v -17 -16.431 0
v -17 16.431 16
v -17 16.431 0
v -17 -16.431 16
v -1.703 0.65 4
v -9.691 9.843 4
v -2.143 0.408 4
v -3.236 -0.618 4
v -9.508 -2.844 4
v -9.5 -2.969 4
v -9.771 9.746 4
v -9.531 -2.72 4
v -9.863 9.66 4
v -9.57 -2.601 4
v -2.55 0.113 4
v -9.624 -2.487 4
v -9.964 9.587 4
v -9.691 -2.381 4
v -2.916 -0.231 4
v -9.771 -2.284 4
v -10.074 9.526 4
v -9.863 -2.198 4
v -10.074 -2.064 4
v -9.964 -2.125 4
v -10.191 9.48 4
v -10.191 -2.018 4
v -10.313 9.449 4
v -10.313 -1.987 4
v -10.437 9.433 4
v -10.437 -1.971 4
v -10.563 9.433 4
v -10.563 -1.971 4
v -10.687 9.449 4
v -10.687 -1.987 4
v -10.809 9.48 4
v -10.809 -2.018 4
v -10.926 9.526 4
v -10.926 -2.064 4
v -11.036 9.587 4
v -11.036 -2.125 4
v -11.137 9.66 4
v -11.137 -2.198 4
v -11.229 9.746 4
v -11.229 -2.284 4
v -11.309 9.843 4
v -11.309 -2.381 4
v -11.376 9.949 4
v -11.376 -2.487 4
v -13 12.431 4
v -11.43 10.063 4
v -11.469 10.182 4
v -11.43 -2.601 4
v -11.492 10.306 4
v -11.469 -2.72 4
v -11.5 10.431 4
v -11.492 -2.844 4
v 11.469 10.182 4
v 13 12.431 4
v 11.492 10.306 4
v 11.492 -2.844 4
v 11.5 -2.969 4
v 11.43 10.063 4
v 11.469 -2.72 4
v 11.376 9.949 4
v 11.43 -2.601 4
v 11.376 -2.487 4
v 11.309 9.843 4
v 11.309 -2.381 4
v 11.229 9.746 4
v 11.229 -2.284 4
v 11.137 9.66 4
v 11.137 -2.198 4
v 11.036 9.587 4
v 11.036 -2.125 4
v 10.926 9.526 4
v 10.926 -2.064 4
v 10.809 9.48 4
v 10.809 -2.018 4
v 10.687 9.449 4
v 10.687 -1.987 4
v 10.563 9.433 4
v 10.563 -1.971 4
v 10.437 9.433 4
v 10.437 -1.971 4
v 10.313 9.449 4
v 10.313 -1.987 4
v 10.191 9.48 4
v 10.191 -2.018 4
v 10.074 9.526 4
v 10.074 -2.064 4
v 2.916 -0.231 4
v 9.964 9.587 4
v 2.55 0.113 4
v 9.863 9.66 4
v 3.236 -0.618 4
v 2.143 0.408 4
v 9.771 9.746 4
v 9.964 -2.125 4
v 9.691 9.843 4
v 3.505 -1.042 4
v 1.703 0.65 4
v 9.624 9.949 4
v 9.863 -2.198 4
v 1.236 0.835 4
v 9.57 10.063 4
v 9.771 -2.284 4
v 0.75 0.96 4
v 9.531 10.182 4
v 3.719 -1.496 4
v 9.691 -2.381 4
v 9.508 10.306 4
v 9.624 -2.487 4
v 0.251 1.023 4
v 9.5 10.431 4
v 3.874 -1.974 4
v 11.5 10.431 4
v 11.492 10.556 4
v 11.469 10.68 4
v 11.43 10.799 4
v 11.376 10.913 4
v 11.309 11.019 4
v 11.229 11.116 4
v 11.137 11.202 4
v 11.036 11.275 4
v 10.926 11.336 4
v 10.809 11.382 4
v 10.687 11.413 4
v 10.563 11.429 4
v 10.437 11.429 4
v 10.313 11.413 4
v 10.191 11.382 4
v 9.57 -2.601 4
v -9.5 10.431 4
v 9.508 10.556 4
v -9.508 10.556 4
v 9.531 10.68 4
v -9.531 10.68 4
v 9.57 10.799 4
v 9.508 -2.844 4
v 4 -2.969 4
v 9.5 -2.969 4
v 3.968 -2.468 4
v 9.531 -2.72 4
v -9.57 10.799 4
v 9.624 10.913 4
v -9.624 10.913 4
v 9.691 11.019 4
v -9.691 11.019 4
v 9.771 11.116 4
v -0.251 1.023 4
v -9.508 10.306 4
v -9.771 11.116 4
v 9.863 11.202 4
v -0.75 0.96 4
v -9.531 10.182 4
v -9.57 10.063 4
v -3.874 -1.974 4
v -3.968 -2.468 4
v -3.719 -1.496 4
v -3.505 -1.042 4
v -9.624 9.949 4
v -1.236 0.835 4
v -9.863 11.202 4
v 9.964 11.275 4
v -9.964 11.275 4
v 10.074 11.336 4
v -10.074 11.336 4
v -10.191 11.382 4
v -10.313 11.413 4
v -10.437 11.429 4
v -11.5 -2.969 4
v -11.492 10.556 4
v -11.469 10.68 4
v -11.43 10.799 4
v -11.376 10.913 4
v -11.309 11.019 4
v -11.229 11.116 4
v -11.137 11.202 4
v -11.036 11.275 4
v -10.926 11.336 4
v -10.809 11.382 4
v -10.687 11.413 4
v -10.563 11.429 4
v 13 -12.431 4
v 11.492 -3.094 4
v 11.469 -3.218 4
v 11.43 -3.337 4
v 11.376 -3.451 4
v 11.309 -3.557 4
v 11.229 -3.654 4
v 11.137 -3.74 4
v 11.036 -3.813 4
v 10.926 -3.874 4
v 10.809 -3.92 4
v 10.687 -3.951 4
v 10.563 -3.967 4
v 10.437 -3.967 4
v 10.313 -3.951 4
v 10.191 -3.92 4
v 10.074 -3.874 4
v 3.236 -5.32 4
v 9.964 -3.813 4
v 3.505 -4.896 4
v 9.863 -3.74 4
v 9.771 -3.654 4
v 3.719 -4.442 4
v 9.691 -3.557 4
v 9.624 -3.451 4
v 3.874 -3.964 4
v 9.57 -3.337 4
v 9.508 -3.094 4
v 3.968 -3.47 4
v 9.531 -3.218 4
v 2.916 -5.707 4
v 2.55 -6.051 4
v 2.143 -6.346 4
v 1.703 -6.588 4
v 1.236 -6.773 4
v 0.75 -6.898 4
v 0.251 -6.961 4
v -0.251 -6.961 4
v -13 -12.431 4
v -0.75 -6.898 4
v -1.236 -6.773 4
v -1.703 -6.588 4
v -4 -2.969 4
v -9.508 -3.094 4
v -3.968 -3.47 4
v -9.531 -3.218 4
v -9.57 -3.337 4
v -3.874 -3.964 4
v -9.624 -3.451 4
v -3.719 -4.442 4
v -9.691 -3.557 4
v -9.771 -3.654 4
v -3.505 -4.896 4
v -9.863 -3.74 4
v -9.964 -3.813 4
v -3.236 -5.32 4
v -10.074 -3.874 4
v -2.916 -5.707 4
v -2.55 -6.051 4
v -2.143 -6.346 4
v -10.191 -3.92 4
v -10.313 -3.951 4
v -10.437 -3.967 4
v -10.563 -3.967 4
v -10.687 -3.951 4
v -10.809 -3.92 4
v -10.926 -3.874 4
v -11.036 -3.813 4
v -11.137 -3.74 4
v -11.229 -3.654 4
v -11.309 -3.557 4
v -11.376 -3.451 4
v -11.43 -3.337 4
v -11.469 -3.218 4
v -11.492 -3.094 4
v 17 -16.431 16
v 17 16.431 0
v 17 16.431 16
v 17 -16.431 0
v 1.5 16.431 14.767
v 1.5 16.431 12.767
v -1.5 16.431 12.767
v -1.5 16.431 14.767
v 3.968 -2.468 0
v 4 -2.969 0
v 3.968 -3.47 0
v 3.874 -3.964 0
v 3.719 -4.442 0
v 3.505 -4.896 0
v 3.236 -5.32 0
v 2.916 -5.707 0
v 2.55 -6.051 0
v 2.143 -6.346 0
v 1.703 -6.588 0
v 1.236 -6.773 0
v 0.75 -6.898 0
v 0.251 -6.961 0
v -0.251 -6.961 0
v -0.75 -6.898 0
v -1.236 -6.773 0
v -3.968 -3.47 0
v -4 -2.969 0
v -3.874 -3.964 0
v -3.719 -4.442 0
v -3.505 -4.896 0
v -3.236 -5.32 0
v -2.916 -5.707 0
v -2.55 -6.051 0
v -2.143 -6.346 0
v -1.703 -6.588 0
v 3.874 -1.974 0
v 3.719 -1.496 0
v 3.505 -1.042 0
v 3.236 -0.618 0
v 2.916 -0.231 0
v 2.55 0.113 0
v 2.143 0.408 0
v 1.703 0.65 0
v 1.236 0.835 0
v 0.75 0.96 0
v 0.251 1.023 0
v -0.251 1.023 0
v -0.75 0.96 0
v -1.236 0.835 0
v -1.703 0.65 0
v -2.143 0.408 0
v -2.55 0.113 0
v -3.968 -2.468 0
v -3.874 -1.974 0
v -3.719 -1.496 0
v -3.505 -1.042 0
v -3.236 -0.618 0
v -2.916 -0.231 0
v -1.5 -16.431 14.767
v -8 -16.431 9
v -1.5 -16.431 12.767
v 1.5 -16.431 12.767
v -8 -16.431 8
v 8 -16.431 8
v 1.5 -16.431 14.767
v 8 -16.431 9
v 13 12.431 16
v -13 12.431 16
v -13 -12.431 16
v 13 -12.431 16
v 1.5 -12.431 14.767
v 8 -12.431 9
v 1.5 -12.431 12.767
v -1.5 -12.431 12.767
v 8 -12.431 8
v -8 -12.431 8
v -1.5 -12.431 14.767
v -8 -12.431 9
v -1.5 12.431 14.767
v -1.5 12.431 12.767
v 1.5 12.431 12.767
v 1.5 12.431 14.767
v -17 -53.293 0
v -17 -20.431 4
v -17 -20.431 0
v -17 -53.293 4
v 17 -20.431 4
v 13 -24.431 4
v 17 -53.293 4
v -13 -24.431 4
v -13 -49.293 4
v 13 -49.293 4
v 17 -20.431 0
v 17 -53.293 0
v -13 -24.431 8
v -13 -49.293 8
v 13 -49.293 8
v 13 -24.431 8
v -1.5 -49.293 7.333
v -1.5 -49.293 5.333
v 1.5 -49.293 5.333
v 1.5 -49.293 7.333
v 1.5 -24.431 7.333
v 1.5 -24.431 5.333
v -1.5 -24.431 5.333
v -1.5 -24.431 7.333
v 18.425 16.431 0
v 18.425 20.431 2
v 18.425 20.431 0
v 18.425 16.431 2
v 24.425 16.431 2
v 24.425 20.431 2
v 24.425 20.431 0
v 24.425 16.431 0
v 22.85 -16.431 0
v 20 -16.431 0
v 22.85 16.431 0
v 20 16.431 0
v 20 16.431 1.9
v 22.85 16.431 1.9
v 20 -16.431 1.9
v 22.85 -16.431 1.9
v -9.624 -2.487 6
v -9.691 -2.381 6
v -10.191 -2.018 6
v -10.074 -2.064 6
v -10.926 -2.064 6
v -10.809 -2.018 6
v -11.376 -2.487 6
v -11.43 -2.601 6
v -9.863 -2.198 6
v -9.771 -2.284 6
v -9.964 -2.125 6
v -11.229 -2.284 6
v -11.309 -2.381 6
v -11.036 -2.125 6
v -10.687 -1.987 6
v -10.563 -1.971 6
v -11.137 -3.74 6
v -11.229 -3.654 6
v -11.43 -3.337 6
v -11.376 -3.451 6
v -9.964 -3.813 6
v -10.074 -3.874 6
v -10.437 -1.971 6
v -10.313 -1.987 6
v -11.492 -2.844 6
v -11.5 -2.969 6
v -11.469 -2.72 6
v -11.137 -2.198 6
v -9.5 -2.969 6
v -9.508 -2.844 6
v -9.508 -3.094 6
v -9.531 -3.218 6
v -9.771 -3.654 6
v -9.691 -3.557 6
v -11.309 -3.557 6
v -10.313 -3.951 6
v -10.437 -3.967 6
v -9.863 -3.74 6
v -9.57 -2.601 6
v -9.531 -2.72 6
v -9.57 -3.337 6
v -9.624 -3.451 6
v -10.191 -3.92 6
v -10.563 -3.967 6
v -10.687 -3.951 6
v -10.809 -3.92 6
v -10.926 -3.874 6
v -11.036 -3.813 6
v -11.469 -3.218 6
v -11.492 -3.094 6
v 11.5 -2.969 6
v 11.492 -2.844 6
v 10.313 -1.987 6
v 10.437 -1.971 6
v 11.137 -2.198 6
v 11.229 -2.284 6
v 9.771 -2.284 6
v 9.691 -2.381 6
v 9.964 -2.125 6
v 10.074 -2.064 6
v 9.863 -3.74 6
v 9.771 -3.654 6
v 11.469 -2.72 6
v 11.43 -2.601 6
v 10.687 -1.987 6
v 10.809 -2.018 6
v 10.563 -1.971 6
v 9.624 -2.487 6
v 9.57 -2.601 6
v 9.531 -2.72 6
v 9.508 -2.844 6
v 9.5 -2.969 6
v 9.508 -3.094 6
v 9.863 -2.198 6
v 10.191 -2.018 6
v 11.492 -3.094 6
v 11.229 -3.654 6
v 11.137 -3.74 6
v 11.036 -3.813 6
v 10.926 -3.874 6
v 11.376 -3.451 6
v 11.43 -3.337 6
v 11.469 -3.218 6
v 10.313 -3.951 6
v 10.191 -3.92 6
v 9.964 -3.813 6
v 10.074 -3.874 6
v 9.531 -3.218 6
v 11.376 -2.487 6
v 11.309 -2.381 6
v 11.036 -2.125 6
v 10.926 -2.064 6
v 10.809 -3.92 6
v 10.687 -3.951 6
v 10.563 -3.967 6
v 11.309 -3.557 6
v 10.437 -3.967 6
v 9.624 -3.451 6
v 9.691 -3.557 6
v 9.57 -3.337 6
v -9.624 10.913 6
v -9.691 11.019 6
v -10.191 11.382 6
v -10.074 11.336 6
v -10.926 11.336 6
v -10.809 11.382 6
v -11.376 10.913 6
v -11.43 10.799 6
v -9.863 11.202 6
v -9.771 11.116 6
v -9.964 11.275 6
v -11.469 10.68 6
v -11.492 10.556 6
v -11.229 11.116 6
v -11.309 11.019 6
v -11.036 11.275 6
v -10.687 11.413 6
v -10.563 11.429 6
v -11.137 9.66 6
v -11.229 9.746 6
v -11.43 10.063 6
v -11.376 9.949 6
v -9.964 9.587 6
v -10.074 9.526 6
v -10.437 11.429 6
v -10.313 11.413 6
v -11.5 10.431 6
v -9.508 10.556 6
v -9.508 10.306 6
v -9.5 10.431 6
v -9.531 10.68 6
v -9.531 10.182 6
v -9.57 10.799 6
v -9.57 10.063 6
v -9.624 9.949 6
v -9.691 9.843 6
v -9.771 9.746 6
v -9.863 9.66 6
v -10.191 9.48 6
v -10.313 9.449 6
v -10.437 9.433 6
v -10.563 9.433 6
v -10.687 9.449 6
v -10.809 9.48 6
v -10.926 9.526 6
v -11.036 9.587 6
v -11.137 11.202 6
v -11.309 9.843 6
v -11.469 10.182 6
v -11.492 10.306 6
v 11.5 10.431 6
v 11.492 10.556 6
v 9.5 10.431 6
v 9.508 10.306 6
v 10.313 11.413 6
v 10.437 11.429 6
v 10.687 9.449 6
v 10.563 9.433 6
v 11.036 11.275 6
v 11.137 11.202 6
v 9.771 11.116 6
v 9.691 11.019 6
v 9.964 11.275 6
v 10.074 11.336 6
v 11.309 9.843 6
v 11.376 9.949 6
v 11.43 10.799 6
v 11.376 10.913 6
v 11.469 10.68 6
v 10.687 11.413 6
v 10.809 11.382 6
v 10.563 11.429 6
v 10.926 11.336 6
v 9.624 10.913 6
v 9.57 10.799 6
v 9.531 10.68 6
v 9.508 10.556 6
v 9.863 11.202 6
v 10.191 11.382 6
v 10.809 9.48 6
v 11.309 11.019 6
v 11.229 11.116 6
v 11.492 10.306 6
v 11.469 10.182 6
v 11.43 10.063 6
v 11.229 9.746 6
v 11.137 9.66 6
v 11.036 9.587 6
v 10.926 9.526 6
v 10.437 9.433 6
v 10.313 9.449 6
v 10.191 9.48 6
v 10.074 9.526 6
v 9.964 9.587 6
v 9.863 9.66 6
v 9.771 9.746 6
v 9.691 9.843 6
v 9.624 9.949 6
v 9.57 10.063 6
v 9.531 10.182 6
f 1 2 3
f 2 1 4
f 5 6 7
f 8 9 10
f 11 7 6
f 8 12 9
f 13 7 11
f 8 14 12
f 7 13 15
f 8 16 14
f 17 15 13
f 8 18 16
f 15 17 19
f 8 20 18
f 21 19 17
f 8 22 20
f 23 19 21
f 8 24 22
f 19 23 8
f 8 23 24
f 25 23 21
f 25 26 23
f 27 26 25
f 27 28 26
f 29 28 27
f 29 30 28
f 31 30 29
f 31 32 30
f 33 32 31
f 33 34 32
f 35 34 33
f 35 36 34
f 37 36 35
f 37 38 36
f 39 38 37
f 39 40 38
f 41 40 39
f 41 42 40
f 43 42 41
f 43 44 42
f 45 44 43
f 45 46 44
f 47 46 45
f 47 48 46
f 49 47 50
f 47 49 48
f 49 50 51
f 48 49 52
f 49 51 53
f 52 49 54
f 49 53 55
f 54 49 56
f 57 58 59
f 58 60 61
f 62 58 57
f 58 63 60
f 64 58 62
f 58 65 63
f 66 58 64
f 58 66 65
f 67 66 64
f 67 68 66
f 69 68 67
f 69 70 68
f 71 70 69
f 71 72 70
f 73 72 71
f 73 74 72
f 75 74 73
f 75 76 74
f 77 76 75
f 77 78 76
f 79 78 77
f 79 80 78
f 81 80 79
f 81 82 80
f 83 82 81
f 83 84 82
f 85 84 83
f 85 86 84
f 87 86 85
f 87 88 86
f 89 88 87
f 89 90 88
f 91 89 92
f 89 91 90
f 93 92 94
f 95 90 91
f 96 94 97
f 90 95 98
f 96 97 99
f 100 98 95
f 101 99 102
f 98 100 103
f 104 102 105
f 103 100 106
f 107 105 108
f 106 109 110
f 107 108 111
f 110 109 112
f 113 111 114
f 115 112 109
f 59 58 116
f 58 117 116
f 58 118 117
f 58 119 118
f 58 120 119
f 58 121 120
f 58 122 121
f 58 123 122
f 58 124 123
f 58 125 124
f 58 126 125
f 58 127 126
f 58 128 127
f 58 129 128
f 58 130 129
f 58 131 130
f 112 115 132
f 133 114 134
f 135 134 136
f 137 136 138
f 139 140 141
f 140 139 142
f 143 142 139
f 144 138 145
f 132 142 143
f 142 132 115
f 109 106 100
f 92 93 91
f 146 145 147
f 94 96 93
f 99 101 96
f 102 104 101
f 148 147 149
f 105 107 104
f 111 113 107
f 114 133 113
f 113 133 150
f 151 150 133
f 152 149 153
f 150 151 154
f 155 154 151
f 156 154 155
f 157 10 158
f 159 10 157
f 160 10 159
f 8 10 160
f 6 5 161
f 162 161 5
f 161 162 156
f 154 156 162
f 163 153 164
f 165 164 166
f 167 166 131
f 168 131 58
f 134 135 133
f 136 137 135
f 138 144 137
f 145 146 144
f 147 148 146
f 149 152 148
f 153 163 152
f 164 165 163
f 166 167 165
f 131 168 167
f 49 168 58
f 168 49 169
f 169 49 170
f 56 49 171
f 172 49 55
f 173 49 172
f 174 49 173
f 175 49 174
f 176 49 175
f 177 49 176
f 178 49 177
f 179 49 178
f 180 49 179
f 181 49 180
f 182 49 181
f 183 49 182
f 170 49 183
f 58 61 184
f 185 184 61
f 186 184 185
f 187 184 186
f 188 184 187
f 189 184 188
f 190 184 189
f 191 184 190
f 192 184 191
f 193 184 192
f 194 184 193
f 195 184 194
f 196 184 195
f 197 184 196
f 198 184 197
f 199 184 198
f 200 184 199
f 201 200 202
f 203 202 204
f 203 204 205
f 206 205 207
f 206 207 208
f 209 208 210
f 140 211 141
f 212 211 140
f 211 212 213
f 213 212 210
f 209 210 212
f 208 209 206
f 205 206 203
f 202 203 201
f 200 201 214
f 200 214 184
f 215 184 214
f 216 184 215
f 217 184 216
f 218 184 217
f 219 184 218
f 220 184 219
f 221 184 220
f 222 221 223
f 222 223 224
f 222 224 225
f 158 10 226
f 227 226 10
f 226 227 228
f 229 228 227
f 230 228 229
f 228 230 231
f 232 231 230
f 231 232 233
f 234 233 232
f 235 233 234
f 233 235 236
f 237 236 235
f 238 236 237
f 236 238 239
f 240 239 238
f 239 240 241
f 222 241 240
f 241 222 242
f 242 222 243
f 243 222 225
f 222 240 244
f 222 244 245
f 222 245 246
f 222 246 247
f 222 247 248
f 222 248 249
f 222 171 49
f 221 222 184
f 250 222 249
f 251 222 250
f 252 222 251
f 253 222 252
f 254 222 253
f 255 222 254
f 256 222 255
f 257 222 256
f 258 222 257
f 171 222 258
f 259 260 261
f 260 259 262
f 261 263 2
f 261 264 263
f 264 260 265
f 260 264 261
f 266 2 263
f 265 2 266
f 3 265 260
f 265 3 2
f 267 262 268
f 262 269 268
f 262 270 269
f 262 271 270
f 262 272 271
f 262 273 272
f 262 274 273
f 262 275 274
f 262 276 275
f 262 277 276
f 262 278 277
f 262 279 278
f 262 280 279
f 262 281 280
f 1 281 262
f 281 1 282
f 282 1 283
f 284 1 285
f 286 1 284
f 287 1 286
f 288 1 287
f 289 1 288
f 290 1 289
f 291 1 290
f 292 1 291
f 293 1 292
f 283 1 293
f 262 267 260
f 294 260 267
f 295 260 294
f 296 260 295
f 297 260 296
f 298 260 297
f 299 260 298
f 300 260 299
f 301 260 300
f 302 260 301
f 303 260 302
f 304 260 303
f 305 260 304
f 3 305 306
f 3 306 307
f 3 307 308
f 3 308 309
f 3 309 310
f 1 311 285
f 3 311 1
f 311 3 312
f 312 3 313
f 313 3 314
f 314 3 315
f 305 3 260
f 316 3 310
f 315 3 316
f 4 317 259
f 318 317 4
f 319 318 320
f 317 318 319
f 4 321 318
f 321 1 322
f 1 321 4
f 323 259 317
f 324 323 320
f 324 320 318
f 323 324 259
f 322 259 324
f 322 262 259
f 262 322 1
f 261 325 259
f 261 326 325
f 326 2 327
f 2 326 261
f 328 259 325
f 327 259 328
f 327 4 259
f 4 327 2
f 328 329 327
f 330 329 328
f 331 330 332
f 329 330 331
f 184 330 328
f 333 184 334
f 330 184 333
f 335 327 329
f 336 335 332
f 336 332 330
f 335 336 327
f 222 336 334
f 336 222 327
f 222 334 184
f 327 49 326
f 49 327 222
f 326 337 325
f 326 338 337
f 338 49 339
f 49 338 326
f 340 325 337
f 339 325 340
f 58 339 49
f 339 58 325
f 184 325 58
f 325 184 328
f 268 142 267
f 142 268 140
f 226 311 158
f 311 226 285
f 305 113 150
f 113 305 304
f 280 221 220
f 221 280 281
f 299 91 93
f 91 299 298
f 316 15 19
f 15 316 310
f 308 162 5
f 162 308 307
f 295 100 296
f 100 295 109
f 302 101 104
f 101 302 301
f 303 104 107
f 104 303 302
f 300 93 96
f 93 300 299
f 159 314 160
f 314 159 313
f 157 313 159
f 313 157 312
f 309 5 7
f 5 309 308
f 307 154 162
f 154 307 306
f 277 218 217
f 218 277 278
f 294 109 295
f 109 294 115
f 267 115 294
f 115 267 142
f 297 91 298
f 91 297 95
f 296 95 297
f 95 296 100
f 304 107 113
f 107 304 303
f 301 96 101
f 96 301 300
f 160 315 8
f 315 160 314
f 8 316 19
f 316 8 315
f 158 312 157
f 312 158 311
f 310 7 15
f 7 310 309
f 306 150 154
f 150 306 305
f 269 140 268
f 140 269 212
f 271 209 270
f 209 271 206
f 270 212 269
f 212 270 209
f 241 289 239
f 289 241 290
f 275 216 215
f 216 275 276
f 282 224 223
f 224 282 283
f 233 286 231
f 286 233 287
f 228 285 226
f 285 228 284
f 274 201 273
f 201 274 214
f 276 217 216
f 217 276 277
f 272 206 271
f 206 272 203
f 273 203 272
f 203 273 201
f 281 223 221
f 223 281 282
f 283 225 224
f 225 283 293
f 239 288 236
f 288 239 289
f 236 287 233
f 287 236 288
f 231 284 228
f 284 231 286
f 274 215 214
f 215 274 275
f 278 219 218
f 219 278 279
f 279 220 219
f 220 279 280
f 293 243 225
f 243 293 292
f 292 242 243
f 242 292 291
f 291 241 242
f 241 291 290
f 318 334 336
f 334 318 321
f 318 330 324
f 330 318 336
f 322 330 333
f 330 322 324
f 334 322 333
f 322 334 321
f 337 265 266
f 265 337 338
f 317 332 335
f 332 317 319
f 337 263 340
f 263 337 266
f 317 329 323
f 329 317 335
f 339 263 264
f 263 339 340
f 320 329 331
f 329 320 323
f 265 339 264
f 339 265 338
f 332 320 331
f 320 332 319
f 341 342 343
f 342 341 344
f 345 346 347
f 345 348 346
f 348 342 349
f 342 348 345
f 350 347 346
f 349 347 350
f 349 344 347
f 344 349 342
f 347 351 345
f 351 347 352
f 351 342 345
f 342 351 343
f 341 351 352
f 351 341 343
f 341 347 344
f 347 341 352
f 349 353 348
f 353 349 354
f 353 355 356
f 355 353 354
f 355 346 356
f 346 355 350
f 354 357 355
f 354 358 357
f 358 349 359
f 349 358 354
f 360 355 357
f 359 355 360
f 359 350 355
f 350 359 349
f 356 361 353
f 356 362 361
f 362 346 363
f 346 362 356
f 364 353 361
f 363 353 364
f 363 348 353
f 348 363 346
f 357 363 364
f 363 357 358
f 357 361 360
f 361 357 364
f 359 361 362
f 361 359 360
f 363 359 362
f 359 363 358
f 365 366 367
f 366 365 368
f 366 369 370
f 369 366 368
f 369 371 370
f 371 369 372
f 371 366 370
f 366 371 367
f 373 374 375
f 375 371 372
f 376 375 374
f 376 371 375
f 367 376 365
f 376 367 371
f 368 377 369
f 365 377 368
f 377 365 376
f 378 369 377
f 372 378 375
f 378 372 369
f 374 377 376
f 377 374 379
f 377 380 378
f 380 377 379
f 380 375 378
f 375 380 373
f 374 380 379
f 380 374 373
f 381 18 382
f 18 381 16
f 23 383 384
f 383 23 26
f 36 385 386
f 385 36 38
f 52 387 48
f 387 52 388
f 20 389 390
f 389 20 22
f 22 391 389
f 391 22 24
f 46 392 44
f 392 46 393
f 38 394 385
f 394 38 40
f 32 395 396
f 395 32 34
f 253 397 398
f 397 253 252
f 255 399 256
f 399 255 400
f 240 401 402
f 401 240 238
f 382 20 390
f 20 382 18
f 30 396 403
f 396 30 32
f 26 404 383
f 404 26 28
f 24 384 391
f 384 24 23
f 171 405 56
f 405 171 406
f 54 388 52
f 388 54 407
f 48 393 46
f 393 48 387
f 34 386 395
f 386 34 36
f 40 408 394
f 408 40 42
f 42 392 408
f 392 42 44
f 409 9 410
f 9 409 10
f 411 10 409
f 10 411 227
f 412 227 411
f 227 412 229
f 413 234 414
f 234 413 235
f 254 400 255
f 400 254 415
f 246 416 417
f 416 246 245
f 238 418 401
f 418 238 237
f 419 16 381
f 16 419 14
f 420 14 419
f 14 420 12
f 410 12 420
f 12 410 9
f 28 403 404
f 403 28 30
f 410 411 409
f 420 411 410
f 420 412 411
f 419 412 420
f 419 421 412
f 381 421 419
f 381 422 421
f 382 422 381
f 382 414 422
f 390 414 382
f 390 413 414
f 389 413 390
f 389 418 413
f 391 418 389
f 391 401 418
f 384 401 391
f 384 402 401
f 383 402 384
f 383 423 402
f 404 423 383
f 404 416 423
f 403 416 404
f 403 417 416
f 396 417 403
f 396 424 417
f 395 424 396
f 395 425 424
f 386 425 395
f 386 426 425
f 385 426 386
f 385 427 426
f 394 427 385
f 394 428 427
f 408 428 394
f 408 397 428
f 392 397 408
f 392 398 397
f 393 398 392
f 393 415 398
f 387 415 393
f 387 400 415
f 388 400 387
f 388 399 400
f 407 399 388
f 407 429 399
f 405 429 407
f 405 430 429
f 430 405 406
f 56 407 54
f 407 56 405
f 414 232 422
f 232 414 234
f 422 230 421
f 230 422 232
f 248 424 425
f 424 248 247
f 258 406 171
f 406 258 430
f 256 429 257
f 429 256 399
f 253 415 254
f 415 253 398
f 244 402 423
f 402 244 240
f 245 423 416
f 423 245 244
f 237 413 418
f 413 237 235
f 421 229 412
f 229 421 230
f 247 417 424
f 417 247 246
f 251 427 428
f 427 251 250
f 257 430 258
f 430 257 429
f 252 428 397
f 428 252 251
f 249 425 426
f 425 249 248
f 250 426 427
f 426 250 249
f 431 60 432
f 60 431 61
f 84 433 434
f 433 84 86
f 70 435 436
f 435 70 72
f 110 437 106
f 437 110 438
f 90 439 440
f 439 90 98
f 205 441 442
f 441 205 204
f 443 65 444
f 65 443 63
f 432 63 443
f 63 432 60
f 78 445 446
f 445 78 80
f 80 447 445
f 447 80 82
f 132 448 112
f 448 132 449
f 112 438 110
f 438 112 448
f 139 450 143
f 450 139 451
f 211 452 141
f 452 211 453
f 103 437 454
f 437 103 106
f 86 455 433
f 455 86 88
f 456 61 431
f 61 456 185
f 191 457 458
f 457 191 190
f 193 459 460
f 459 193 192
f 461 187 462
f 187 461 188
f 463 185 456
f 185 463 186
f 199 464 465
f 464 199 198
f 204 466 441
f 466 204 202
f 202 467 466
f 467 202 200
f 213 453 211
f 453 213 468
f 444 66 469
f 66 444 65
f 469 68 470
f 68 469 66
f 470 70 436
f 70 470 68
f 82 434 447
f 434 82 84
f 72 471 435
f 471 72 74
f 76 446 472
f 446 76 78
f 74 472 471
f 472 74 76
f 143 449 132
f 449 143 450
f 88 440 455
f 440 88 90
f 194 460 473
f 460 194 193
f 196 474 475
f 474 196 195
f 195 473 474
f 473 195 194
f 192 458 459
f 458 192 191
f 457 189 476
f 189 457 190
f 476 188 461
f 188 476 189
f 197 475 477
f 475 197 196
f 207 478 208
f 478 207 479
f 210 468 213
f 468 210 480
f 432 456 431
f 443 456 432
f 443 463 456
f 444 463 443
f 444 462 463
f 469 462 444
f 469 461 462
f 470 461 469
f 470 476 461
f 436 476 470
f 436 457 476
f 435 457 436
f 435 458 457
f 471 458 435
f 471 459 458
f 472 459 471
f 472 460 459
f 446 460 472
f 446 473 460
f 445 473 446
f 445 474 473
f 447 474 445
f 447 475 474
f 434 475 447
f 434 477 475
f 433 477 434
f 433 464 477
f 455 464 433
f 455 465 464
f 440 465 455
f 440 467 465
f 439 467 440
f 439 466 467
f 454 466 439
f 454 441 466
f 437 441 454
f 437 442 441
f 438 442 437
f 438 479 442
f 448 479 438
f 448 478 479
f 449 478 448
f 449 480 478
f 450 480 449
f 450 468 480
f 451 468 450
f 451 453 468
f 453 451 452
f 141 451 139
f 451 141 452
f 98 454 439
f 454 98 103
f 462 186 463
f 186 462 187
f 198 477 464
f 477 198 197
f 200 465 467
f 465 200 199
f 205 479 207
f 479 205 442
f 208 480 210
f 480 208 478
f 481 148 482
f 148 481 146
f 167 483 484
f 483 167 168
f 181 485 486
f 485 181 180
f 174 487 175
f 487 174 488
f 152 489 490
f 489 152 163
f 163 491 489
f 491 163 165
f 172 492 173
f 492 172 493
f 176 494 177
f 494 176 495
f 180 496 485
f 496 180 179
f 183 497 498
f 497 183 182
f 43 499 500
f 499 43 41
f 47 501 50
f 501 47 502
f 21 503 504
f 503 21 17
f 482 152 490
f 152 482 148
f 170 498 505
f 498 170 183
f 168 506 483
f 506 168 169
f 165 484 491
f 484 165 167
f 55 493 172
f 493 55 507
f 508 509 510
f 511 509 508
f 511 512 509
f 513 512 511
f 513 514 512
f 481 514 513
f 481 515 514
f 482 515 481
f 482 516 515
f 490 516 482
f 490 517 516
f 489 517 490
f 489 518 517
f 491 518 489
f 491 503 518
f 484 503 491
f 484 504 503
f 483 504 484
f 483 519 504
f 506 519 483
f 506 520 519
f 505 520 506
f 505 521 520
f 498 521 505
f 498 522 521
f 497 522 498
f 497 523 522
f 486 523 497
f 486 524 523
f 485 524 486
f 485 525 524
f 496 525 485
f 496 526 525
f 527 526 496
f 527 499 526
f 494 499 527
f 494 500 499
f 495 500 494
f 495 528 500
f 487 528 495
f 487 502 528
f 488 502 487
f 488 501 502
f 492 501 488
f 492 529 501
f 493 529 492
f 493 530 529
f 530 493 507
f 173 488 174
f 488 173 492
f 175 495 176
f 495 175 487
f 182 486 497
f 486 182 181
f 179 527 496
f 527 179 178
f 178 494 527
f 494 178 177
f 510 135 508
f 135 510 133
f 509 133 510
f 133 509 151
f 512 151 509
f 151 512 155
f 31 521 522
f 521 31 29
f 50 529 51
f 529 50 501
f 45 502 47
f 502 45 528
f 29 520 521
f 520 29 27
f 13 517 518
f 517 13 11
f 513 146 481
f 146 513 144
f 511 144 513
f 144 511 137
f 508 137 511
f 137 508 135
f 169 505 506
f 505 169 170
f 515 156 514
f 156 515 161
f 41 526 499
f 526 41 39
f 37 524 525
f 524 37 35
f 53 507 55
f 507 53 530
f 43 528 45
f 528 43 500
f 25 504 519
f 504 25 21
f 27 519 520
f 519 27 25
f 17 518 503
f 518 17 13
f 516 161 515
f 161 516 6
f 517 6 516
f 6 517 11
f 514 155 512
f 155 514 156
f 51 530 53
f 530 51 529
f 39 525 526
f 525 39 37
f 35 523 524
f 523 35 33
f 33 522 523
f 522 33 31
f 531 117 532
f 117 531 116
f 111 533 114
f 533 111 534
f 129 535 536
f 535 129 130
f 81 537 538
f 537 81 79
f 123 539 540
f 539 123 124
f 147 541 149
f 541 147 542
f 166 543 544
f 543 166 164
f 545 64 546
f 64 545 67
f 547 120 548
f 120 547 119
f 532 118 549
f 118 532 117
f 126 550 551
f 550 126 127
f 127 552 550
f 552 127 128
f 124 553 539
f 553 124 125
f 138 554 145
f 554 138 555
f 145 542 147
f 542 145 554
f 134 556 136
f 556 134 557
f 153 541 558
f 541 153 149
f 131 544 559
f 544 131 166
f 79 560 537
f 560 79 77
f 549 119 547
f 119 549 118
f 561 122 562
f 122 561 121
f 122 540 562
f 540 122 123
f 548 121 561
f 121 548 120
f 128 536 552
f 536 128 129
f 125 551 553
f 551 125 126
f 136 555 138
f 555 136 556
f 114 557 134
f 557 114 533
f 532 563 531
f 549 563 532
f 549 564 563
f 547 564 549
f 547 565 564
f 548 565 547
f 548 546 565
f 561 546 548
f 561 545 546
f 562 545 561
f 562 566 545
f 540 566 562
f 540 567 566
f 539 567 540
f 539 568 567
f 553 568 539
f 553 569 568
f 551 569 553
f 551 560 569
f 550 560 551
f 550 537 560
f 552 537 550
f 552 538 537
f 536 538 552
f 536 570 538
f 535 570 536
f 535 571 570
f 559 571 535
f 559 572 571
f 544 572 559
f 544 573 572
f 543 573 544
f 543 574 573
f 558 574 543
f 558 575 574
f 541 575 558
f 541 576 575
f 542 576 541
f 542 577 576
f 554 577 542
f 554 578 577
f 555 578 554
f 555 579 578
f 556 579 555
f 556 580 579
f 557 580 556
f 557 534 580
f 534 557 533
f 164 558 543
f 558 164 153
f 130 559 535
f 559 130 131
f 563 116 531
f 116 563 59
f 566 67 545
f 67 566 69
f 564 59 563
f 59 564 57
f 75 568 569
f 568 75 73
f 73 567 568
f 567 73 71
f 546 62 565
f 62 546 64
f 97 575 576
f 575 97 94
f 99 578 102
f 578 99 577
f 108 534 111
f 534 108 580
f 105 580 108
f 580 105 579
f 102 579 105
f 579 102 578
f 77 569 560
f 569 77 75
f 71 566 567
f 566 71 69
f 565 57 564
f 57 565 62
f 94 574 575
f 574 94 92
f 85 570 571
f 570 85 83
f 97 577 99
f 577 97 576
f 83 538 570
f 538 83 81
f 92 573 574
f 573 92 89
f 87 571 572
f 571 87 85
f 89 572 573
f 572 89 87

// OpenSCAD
// file: ../modules/basicBox.scad
module basicBox(innerX, innerY, innerZ, thickness) {
    translate([-innerX/2-thickness, -innerY/2-thickness, 0]) {
        cube([innerX+2*thickness, innerY+2*thickness, thickness]); // bottom
        cube([innerX+2*thickness, thickness, innerZ+3*thickness]); //front
        cube([thickness, innerY+2*thickness, innerZ+3*thickness]); // left
        translate([0, innerY+thickness, 0])
            cube([innerX+2*thickness, thickness, innerZ+3*thickness]); // back
        translate([innerX+thickness, 0, 0])
            cube([thickness, innerY+2*thickness, innerZ+3*thickness]); // right
    }
}

module basicLid(innerX, innerY, innerZ, thickness) {
    translate([-innerX/2-thickness, -innerY/2-thickness, 0]) {
        translate([0, -innerY-thickness-thickness-thickness, 0]) {
            cube([innerX+2*thickness, innerY+2*thickness, thickness]);
            translate([thickness, thickness, 0])
                cube([innerX, innerY, thickness*2]);
        }
    }
}

basicBox(30, 20, 10, 2);
basicLid(30, 20, 10, 2);

translate([30/2+5, -20/2, 0])
    cube([30, 20, 10]);
// main file
use <../modules/basicBox.scad>

$fn=50;
thickness=4;

overallX=25+1;
overallY=23.862+1;
overallZ=4;
distanceFromCameraToBottom=9.462;

difference() {
    basicBox(overallX, overallY, overallZ, thickness);
    union() {
        // camera hole
        translate([0, -overallY/2+distanceFromCameraToBottom, -1])
            cylinder(d=8, h=thickness+2);
        // cable slit
        translate([-8, -overallY/2-thickness-1, overallZ+thickness])
            cube([16, thickness+2, 1]);
        // lockBar Hole
        translate([-1.5, -overallY/2-thickness-1, overallZ+3*thickness-thickness/2*0.95-thickness/3])
            lockBarHole();
    }
}

// mounting pins
widthBetweenHoles=21;
translate([-widthBetweenHoles/2, -overallY/2+distanceFromCameraToBottom, thickness])
    2mmMountPoint();
translate([widthBetweenHoles/2, -overallY/2+distanceFromCameraToBottom, thickness])
    2mmMountPoint();
translate([-widthBetweenHoles/2, overallY/2-2, thickness])
    2mmMountPoint();
translate([widthBetweenHoles/2, overallY/2-2, thickness])
    2mmMountPoint();
    
module 2mmMountPoint() {
    cylinder(d=2, h=2);
}

module lockBar() {
    translate([-3+3*0.95/2, overallY+thickness*2, 0])
        cube([6, thickness, 2]);
    cube([3*0.95, overallY+2+thickness*2, thickness/2*0.95]);
}

module lockBarHole() {
    
    cube([3, overallY+2+thickness*2, thickness/2]);
}

module lockLid() {
    difference() {
        basicLid(overallX, overallY, overallZ, thickness);
        translate([-1.5, -overallY-overallY/2-4*thickness-1, thickness+thickness/3])
            lockBarHole();
    }
}

lockLid();

translate([overallX/2+thickness+3, -overallY/2-thickness, 0]) {
    lockBar();
}
